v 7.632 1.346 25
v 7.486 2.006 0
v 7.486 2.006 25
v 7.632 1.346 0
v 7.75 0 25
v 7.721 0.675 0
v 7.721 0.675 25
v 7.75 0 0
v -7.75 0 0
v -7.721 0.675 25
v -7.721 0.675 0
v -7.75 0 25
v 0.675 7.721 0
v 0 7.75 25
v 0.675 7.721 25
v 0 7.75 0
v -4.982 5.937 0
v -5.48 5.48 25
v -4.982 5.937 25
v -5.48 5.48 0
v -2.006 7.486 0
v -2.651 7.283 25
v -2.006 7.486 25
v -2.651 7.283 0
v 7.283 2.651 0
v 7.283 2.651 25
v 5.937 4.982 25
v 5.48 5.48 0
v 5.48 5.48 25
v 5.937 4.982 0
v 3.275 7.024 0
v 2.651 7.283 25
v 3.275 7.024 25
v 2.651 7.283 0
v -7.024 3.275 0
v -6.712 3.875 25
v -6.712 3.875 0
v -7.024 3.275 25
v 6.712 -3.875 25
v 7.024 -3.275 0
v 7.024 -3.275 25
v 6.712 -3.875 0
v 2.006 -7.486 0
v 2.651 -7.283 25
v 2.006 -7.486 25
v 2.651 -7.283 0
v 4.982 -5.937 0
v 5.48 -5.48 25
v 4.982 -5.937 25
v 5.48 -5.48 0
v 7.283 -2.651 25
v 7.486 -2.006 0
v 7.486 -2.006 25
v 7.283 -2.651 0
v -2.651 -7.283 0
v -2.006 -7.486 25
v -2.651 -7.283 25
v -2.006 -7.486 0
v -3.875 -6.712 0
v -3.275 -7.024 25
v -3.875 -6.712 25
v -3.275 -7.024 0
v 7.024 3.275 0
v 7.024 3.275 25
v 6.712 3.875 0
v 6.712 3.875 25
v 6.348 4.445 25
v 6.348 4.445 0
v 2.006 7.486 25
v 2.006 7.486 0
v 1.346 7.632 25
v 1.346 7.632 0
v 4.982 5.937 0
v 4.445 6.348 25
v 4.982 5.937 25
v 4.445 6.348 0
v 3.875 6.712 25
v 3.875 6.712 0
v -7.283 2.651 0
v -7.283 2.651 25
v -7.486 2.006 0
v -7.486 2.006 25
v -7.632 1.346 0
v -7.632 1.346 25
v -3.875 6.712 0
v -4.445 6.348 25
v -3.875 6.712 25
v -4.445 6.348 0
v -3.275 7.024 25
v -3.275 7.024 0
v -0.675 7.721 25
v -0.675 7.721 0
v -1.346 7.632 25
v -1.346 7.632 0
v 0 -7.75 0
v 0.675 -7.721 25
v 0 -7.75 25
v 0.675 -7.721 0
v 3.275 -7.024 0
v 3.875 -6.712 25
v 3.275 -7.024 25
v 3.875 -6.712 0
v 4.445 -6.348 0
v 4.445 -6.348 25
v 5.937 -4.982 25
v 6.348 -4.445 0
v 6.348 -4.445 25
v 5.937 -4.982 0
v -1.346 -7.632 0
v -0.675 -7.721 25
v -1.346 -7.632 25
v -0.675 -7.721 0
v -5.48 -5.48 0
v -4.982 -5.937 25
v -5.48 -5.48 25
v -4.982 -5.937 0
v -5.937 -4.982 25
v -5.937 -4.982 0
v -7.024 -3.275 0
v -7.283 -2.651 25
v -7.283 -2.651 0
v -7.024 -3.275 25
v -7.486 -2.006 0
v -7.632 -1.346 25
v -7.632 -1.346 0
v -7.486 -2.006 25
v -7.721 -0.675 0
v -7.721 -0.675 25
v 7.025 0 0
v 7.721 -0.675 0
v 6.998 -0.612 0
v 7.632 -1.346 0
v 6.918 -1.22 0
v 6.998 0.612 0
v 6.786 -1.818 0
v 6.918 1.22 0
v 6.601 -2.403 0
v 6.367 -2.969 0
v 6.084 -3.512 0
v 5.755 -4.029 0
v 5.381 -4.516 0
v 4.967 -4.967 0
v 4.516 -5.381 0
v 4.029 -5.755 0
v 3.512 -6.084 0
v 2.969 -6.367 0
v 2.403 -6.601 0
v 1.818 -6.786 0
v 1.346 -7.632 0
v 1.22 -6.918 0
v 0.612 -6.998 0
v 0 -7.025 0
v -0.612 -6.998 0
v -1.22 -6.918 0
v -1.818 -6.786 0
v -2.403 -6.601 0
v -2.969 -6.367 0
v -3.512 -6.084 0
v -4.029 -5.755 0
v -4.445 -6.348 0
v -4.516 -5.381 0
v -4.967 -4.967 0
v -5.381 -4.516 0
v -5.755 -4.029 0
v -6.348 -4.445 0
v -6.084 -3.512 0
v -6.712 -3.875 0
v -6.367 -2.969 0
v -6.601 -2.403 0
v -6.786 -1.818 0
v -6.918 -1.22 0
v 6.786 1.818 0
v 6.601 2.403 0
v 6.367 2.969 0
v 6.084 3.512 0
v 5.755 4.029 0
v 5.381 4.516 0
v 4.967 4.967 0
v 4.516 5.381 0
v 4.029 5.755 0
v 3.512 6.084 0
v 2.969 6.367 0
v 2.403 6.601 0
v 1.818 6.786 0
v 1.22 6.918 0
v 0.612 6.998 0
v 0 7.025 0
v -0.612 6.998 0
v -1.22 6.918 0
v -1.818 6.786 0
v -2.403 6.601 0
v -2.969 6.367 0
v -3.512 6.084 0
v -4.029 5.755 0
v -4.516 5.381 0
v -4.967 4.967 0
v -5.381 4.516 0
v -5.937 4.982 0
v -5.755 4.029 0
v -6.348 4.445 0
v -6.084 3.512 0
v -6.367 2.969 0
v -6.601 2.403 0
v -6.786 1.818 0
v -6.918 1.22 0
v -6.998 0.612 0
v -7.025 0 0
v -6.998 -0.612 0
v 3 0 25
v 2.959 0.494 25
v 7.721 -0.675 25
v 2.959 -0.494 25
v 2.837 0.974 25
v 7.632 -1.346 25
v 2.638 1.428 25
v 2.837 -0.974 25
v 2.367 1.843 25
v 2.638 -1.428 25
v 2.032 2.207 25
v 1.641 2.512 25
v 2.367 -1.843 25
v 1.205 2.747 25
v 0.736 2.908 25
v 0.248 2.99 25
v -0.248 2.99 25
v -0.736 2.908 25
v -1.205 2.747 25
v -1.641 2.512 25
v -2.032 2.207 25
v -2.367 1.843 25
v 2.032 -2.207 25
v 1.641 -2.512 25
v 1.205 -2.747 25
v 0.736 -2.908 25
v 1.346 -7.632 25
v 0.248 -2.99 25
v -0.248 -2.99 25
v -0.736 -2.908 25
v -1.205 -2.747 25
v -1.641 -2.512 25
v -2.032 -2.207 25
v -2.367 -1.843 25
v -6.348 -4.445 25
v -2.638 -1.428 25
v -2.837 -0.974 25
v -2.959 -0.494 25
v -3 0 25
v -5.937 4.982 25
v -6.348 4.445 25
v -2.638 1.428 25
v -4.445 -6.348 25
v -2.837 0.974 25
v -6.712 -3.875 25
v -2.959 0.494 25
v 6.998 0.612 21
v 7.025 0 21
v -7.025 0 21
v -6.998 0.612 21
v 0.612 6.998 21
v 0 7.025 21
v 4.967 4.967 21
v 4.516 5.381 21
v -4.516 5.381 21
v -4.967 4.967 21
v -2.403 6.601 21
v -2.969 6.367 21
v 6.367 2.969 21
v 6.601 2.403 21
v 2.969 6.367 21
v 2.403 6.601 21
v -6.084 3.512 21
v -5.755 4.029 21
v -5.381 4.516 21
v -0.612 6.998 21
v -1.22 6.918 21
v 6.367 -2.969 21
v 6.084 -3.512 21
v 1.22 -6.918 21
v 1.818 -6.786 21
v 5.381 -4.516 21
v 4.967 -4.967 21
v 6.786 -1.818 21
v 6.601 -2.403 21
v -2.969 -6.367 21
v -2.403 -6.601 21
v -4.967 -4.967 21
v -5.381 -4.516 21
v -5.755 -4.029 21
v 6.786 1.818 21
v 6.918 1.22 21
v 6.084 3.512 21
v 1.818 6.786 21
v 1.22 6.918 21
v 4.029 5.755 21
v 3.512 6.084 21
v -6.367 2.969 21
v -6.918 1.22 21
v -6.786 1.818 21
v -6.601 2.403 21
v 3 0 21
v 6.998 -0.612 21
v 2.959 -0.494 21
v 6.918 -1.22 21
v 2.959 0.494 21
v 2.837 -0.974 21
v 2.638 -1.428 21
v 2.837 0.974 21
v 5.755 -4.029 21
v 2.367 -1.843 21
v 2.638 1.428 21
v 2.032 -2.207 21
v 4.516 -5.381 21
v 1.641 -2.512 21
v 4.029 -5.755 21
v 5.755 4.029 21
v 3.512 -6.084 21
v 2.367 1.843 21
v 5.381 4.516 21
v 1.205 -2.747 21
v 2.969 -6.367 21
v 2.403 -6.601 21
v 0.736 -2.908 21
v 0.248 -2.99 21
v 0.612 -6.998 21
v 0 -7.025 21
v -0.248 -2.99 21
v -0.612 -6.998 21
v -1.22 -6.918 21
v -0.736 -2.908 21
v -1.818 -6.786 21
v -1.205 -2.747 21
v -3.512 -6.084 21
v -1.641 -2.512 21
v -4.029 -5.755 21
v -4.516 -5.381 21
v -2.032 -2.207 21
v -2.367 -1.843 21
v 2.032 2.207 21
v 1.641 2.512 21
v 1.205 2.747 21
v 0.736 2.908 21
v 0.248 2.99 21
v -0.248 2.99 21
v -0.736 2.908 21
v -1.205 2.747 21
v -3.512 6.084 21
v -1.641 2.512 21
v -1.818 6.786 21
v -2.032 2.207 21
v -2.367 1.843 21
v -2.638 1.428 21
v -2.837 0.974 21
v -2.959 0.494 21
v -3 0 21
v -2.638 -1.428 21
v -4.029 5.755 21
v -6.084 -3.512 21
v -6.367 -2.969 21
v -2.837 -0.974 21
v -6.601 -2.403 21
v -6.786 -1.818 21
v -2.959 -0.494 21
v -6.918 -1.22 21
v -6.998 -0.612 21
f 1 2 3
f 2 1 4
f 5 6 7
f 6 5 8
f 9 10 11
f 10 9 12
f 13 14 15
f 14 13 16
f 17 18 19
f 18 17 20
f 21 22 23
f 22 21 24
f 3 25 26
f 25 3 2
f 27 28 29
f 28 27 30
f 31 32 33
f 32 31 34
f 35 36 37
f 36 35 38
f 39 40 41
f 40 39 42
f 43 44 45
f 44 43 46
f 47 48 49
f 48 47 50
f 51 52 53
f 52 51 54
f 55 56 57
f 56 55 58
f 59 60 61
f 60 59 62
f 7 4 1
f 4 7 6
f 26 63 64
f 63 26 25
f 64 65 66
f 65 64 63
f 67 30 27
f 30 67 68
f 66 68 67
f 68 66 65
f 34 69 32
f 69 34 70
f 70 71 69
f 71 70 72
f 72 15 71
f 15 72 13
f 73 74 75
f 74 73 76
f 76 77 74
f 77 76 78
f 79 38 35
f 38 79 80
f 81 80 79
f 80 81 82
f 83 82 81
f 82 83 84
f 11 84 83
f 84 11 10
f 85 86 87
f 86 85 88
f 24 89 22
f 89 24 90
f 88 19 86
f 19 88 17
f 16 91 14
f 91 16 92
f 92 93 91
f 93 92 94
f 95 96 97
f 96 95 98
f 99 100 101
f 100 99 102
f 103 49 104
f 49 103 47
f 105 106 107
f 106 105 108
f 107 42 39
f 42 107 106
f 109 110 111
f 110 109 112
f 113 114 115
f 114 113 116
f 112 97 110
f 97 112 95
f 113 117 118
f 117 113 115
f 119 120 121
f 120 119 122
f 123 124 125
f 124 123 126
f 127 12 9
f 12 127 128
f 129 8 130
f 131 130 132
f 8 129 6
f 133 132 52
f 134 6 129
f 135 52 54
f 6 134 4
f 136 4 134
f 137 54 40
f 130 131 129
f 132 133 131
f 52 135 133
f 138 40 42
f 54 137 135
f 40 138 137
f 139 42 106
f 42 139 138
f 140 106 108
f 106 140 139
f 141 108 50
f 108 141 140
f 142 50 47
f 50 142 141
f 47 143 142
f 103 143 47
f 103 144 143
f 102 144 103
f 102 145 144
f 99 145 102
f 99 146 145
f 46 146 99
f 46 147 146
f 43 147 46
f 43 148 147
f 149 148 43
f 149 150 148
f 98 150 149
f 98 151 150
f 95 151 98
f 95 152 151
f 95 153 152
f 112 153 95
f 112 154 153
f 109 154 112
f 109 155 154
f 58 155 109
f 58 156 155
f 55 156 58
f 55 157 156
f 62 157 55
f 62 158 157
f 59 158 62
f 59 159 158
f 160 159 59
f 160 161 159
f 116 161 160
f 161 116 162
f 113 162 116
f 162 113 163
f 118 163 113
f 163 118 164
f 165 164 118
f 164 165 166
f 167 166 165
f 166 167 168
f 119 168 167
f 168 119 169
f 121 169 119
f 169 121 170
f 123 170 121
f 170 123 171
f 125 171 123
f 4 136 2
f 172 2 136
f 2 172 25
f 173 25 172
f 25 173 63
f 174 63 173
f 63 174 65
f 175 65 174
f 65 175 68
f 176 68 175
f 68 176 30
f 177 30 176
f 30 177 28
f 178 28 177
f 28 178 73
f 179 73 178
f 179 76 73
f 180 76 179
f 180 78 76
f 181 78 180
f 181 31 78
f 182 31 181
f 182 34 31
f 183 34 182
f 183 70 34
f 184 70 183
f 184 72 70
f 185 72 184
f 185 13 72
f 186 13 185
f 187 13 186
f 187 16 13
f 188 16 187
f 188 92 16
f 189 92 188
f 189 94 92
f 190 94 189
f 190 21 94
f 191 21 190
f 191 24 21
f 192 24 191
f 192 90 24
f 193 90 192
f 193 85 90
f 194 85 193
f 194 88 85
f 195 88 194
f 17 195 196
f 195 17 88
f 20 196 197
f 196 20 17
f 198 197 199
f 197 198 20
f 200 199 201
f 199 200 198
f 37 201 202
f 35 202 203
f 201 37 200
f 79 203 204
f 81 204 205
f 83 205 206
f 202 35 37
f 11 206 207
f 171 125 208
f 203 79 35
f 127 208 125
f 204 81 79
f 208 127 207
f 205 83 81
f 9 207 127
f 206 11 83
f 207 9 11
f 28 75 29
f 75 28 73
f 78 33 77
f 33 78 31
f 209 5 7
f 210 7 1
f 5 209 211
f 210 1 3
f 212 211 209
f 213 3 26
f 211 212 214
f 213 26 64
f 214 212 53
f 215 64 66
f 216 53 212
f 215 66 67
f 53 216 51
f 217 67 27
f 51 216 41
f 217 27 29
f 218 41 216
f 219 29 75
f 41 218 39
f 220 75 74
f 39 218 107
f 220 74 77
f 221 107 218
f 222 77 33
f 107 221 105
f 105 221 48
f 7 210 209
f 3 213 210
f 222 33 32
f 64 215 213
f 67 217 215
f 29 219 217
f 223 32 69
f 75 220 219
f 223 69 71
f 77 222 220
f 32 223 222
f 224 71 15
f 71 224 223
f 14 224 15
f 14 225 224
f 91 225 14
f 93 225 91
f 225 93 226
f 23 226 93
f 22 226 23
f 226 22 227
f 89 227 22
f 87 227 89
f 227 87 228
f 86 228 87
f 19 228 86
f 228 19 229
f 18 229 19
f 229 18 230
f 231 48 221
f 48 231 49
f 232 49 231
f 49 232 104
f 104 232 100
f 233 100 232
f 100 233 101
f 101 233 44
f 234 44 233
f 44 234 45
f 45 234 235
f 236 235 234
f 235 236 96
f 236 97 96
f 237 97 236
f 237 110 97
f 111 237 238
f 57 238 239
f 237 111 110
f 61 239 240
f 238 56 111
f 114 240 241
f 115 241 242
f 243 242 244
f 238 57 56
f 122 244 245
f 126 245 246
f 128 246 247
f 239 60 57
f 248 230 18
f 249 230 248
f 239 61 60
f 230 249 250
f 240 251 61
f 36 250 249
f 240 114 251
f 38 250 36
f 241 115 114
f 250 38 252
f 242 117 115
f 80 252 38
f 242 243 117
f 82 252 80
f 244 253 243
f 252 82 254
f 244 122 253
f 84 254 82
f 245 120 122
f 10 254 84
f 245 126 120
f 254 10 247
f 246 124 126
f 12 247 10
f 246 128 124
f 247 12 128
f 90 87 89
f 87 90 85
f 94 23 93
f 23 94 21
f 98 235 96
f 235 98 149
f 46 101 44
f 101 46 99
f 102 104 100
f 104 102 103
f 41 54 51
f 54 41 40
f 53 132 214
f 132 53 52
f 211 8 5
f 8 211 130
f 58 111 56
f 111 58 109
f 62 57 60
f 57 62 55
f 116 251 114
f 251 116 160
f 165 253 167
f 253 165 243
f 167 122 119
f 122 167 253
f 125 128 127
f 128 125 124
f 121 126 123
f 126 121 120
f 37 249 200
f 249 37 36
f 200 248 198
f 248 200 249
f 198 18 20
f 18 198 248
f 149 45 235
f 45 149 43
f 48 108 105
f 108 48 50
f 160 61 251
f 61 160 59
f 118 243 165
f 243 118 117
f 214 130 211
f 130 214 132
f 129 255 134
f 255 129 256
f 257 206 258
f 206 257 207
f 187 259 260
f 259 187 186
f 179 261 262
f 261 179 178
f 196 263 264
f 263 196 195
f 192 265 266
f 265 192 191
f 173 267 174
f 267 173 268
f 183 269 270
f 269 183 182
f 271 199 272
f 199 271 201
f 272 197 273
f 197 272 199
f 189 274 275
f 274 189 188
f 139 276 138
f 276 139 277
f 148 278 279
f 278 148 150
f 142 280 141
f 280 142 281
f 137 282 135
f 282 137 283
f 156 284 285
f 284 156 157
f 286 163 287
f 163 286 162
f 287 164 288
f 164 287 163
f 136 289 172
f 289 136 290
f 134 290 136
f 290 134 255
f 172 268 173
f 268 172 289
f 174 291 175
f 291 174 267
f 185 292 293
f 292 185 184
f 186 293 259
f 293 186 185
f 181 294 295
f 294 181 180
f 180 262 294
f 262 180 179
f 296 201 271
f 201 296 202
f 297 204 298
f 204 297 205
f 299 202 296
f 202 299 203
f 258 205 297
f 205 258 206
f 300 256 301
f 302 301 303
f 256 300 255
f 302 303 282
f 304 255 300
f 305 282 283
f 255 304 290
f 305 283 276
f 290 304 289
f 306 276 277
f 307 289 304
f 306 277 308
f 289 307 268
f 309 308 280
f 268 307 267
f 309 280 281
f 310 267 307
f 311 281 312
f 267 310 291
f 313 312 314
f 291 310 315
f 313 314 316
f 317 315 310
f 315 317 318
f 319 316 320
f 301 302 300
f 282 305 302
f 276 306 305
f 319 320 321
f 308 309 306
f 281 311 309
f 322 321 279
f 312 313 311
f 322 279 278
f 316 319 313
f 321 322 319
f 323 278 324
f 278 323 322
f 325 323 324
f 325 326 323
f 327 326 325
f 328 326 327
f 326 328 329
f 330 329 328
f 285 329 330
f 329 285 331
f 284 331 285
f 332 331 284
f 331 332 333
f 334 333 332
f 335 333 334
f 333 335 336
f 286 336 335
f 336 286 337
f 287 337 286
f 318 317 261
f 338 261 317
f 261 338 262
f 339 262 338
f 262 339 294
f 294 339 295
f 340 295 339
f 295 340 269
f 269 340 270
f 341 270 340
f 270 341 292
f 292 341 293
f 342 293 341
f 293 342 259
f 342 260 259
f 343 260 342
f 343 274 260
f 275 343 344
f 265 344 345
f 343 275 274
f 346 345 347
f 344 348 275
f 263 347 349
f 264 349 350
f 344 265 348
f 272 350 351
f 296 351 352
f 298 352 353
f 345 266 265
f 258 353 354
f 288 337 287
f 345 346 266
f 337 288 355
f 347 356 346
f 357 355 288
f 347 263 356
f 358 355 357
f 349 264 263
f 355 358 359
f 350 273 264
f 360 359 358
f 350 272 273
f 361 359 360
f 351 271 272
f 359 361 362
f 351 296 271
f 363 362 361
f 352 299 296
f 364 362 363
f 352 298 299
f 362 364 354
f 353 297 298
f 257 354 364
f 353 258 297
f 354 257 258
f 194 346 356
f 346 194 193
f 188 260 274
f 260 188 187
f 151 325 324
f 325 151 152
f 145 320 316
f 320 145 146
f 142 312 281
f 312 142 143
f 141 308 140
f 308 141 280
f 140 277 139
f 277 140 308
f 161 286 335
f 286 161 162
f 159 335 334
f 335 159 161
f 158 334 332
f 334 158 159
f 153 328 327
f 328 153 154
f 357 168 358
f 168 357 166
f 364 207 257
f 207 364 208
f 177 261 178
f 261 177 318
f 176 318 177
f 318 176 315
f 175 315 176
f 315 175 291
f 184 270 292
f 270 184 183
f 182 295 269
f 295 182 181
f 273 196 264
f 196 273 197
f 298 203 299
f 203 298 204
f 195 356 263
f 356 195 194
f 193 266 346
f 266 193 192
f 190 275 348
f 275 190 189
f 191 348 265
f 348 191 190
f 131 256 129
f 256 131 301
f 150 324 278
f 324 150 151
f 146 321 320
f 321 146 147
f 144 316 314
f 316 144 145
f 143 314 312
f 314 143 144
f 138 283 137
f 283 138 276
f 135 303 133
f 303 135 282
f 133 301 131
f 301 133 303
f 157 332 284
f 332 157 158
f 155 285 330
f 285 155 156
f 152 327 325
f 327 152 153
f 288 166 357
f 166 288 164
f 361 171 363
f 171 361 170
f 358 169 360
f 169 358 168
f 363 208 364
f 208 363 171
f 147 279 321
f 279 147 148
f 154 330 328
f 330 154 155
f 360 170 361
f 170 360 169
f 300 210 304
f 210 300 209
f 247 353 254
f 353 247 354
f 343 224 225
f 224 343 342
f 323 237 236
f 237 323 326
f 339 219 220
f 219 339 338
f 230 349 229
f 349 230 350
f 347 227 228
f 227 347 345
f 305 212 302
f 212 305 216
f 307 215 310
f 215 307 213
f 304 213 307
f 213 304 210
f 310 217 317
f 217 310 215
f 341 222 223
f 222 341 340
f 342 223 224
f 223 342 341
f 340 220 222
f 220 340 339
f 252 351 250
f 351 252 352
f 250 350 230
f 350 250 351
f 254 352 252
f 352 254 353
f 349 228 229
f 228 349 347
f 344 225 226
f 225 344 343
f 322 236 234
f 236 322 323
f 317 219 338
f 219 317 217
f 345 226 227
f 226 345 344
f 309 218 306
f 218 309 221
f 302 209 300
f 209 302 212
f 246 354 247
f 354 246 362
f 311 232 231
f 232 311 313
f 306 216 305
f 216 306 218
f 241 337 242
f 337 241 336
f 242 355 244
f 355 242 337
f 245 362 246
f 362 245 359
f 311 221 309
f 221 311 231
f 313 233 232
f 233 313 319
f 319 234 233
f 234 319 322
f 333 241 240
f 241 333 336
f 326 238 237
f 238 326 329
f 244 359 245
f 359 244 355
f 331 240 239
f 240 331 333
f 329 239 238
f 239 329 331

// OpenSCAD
// Diameter of thin section of Silhouette pen, below the step. You shouldn't have to change this.
standard_thin_diameter = 13.9;

// Diameter of thick section of Silhouette pen, above the step. You shouldn't have to change this.
standard_thick_diameter = 16.0;


// Length of holder, to extend above the step. Overall length will be this dimension + pen_tip_length.
holder_length = 21;

/* [Hidden] */
slop = 0.15;
$fa = 5;
$fs = 0.5;

difference() {
     cylinder(h=holder_length+4, d=standard_thin_diameter + 1.6);
     cylinder(h=holder_length,   d=standard_thin_diameter + slop);
     cylinder(h=holder_length+4, d=6);
}
